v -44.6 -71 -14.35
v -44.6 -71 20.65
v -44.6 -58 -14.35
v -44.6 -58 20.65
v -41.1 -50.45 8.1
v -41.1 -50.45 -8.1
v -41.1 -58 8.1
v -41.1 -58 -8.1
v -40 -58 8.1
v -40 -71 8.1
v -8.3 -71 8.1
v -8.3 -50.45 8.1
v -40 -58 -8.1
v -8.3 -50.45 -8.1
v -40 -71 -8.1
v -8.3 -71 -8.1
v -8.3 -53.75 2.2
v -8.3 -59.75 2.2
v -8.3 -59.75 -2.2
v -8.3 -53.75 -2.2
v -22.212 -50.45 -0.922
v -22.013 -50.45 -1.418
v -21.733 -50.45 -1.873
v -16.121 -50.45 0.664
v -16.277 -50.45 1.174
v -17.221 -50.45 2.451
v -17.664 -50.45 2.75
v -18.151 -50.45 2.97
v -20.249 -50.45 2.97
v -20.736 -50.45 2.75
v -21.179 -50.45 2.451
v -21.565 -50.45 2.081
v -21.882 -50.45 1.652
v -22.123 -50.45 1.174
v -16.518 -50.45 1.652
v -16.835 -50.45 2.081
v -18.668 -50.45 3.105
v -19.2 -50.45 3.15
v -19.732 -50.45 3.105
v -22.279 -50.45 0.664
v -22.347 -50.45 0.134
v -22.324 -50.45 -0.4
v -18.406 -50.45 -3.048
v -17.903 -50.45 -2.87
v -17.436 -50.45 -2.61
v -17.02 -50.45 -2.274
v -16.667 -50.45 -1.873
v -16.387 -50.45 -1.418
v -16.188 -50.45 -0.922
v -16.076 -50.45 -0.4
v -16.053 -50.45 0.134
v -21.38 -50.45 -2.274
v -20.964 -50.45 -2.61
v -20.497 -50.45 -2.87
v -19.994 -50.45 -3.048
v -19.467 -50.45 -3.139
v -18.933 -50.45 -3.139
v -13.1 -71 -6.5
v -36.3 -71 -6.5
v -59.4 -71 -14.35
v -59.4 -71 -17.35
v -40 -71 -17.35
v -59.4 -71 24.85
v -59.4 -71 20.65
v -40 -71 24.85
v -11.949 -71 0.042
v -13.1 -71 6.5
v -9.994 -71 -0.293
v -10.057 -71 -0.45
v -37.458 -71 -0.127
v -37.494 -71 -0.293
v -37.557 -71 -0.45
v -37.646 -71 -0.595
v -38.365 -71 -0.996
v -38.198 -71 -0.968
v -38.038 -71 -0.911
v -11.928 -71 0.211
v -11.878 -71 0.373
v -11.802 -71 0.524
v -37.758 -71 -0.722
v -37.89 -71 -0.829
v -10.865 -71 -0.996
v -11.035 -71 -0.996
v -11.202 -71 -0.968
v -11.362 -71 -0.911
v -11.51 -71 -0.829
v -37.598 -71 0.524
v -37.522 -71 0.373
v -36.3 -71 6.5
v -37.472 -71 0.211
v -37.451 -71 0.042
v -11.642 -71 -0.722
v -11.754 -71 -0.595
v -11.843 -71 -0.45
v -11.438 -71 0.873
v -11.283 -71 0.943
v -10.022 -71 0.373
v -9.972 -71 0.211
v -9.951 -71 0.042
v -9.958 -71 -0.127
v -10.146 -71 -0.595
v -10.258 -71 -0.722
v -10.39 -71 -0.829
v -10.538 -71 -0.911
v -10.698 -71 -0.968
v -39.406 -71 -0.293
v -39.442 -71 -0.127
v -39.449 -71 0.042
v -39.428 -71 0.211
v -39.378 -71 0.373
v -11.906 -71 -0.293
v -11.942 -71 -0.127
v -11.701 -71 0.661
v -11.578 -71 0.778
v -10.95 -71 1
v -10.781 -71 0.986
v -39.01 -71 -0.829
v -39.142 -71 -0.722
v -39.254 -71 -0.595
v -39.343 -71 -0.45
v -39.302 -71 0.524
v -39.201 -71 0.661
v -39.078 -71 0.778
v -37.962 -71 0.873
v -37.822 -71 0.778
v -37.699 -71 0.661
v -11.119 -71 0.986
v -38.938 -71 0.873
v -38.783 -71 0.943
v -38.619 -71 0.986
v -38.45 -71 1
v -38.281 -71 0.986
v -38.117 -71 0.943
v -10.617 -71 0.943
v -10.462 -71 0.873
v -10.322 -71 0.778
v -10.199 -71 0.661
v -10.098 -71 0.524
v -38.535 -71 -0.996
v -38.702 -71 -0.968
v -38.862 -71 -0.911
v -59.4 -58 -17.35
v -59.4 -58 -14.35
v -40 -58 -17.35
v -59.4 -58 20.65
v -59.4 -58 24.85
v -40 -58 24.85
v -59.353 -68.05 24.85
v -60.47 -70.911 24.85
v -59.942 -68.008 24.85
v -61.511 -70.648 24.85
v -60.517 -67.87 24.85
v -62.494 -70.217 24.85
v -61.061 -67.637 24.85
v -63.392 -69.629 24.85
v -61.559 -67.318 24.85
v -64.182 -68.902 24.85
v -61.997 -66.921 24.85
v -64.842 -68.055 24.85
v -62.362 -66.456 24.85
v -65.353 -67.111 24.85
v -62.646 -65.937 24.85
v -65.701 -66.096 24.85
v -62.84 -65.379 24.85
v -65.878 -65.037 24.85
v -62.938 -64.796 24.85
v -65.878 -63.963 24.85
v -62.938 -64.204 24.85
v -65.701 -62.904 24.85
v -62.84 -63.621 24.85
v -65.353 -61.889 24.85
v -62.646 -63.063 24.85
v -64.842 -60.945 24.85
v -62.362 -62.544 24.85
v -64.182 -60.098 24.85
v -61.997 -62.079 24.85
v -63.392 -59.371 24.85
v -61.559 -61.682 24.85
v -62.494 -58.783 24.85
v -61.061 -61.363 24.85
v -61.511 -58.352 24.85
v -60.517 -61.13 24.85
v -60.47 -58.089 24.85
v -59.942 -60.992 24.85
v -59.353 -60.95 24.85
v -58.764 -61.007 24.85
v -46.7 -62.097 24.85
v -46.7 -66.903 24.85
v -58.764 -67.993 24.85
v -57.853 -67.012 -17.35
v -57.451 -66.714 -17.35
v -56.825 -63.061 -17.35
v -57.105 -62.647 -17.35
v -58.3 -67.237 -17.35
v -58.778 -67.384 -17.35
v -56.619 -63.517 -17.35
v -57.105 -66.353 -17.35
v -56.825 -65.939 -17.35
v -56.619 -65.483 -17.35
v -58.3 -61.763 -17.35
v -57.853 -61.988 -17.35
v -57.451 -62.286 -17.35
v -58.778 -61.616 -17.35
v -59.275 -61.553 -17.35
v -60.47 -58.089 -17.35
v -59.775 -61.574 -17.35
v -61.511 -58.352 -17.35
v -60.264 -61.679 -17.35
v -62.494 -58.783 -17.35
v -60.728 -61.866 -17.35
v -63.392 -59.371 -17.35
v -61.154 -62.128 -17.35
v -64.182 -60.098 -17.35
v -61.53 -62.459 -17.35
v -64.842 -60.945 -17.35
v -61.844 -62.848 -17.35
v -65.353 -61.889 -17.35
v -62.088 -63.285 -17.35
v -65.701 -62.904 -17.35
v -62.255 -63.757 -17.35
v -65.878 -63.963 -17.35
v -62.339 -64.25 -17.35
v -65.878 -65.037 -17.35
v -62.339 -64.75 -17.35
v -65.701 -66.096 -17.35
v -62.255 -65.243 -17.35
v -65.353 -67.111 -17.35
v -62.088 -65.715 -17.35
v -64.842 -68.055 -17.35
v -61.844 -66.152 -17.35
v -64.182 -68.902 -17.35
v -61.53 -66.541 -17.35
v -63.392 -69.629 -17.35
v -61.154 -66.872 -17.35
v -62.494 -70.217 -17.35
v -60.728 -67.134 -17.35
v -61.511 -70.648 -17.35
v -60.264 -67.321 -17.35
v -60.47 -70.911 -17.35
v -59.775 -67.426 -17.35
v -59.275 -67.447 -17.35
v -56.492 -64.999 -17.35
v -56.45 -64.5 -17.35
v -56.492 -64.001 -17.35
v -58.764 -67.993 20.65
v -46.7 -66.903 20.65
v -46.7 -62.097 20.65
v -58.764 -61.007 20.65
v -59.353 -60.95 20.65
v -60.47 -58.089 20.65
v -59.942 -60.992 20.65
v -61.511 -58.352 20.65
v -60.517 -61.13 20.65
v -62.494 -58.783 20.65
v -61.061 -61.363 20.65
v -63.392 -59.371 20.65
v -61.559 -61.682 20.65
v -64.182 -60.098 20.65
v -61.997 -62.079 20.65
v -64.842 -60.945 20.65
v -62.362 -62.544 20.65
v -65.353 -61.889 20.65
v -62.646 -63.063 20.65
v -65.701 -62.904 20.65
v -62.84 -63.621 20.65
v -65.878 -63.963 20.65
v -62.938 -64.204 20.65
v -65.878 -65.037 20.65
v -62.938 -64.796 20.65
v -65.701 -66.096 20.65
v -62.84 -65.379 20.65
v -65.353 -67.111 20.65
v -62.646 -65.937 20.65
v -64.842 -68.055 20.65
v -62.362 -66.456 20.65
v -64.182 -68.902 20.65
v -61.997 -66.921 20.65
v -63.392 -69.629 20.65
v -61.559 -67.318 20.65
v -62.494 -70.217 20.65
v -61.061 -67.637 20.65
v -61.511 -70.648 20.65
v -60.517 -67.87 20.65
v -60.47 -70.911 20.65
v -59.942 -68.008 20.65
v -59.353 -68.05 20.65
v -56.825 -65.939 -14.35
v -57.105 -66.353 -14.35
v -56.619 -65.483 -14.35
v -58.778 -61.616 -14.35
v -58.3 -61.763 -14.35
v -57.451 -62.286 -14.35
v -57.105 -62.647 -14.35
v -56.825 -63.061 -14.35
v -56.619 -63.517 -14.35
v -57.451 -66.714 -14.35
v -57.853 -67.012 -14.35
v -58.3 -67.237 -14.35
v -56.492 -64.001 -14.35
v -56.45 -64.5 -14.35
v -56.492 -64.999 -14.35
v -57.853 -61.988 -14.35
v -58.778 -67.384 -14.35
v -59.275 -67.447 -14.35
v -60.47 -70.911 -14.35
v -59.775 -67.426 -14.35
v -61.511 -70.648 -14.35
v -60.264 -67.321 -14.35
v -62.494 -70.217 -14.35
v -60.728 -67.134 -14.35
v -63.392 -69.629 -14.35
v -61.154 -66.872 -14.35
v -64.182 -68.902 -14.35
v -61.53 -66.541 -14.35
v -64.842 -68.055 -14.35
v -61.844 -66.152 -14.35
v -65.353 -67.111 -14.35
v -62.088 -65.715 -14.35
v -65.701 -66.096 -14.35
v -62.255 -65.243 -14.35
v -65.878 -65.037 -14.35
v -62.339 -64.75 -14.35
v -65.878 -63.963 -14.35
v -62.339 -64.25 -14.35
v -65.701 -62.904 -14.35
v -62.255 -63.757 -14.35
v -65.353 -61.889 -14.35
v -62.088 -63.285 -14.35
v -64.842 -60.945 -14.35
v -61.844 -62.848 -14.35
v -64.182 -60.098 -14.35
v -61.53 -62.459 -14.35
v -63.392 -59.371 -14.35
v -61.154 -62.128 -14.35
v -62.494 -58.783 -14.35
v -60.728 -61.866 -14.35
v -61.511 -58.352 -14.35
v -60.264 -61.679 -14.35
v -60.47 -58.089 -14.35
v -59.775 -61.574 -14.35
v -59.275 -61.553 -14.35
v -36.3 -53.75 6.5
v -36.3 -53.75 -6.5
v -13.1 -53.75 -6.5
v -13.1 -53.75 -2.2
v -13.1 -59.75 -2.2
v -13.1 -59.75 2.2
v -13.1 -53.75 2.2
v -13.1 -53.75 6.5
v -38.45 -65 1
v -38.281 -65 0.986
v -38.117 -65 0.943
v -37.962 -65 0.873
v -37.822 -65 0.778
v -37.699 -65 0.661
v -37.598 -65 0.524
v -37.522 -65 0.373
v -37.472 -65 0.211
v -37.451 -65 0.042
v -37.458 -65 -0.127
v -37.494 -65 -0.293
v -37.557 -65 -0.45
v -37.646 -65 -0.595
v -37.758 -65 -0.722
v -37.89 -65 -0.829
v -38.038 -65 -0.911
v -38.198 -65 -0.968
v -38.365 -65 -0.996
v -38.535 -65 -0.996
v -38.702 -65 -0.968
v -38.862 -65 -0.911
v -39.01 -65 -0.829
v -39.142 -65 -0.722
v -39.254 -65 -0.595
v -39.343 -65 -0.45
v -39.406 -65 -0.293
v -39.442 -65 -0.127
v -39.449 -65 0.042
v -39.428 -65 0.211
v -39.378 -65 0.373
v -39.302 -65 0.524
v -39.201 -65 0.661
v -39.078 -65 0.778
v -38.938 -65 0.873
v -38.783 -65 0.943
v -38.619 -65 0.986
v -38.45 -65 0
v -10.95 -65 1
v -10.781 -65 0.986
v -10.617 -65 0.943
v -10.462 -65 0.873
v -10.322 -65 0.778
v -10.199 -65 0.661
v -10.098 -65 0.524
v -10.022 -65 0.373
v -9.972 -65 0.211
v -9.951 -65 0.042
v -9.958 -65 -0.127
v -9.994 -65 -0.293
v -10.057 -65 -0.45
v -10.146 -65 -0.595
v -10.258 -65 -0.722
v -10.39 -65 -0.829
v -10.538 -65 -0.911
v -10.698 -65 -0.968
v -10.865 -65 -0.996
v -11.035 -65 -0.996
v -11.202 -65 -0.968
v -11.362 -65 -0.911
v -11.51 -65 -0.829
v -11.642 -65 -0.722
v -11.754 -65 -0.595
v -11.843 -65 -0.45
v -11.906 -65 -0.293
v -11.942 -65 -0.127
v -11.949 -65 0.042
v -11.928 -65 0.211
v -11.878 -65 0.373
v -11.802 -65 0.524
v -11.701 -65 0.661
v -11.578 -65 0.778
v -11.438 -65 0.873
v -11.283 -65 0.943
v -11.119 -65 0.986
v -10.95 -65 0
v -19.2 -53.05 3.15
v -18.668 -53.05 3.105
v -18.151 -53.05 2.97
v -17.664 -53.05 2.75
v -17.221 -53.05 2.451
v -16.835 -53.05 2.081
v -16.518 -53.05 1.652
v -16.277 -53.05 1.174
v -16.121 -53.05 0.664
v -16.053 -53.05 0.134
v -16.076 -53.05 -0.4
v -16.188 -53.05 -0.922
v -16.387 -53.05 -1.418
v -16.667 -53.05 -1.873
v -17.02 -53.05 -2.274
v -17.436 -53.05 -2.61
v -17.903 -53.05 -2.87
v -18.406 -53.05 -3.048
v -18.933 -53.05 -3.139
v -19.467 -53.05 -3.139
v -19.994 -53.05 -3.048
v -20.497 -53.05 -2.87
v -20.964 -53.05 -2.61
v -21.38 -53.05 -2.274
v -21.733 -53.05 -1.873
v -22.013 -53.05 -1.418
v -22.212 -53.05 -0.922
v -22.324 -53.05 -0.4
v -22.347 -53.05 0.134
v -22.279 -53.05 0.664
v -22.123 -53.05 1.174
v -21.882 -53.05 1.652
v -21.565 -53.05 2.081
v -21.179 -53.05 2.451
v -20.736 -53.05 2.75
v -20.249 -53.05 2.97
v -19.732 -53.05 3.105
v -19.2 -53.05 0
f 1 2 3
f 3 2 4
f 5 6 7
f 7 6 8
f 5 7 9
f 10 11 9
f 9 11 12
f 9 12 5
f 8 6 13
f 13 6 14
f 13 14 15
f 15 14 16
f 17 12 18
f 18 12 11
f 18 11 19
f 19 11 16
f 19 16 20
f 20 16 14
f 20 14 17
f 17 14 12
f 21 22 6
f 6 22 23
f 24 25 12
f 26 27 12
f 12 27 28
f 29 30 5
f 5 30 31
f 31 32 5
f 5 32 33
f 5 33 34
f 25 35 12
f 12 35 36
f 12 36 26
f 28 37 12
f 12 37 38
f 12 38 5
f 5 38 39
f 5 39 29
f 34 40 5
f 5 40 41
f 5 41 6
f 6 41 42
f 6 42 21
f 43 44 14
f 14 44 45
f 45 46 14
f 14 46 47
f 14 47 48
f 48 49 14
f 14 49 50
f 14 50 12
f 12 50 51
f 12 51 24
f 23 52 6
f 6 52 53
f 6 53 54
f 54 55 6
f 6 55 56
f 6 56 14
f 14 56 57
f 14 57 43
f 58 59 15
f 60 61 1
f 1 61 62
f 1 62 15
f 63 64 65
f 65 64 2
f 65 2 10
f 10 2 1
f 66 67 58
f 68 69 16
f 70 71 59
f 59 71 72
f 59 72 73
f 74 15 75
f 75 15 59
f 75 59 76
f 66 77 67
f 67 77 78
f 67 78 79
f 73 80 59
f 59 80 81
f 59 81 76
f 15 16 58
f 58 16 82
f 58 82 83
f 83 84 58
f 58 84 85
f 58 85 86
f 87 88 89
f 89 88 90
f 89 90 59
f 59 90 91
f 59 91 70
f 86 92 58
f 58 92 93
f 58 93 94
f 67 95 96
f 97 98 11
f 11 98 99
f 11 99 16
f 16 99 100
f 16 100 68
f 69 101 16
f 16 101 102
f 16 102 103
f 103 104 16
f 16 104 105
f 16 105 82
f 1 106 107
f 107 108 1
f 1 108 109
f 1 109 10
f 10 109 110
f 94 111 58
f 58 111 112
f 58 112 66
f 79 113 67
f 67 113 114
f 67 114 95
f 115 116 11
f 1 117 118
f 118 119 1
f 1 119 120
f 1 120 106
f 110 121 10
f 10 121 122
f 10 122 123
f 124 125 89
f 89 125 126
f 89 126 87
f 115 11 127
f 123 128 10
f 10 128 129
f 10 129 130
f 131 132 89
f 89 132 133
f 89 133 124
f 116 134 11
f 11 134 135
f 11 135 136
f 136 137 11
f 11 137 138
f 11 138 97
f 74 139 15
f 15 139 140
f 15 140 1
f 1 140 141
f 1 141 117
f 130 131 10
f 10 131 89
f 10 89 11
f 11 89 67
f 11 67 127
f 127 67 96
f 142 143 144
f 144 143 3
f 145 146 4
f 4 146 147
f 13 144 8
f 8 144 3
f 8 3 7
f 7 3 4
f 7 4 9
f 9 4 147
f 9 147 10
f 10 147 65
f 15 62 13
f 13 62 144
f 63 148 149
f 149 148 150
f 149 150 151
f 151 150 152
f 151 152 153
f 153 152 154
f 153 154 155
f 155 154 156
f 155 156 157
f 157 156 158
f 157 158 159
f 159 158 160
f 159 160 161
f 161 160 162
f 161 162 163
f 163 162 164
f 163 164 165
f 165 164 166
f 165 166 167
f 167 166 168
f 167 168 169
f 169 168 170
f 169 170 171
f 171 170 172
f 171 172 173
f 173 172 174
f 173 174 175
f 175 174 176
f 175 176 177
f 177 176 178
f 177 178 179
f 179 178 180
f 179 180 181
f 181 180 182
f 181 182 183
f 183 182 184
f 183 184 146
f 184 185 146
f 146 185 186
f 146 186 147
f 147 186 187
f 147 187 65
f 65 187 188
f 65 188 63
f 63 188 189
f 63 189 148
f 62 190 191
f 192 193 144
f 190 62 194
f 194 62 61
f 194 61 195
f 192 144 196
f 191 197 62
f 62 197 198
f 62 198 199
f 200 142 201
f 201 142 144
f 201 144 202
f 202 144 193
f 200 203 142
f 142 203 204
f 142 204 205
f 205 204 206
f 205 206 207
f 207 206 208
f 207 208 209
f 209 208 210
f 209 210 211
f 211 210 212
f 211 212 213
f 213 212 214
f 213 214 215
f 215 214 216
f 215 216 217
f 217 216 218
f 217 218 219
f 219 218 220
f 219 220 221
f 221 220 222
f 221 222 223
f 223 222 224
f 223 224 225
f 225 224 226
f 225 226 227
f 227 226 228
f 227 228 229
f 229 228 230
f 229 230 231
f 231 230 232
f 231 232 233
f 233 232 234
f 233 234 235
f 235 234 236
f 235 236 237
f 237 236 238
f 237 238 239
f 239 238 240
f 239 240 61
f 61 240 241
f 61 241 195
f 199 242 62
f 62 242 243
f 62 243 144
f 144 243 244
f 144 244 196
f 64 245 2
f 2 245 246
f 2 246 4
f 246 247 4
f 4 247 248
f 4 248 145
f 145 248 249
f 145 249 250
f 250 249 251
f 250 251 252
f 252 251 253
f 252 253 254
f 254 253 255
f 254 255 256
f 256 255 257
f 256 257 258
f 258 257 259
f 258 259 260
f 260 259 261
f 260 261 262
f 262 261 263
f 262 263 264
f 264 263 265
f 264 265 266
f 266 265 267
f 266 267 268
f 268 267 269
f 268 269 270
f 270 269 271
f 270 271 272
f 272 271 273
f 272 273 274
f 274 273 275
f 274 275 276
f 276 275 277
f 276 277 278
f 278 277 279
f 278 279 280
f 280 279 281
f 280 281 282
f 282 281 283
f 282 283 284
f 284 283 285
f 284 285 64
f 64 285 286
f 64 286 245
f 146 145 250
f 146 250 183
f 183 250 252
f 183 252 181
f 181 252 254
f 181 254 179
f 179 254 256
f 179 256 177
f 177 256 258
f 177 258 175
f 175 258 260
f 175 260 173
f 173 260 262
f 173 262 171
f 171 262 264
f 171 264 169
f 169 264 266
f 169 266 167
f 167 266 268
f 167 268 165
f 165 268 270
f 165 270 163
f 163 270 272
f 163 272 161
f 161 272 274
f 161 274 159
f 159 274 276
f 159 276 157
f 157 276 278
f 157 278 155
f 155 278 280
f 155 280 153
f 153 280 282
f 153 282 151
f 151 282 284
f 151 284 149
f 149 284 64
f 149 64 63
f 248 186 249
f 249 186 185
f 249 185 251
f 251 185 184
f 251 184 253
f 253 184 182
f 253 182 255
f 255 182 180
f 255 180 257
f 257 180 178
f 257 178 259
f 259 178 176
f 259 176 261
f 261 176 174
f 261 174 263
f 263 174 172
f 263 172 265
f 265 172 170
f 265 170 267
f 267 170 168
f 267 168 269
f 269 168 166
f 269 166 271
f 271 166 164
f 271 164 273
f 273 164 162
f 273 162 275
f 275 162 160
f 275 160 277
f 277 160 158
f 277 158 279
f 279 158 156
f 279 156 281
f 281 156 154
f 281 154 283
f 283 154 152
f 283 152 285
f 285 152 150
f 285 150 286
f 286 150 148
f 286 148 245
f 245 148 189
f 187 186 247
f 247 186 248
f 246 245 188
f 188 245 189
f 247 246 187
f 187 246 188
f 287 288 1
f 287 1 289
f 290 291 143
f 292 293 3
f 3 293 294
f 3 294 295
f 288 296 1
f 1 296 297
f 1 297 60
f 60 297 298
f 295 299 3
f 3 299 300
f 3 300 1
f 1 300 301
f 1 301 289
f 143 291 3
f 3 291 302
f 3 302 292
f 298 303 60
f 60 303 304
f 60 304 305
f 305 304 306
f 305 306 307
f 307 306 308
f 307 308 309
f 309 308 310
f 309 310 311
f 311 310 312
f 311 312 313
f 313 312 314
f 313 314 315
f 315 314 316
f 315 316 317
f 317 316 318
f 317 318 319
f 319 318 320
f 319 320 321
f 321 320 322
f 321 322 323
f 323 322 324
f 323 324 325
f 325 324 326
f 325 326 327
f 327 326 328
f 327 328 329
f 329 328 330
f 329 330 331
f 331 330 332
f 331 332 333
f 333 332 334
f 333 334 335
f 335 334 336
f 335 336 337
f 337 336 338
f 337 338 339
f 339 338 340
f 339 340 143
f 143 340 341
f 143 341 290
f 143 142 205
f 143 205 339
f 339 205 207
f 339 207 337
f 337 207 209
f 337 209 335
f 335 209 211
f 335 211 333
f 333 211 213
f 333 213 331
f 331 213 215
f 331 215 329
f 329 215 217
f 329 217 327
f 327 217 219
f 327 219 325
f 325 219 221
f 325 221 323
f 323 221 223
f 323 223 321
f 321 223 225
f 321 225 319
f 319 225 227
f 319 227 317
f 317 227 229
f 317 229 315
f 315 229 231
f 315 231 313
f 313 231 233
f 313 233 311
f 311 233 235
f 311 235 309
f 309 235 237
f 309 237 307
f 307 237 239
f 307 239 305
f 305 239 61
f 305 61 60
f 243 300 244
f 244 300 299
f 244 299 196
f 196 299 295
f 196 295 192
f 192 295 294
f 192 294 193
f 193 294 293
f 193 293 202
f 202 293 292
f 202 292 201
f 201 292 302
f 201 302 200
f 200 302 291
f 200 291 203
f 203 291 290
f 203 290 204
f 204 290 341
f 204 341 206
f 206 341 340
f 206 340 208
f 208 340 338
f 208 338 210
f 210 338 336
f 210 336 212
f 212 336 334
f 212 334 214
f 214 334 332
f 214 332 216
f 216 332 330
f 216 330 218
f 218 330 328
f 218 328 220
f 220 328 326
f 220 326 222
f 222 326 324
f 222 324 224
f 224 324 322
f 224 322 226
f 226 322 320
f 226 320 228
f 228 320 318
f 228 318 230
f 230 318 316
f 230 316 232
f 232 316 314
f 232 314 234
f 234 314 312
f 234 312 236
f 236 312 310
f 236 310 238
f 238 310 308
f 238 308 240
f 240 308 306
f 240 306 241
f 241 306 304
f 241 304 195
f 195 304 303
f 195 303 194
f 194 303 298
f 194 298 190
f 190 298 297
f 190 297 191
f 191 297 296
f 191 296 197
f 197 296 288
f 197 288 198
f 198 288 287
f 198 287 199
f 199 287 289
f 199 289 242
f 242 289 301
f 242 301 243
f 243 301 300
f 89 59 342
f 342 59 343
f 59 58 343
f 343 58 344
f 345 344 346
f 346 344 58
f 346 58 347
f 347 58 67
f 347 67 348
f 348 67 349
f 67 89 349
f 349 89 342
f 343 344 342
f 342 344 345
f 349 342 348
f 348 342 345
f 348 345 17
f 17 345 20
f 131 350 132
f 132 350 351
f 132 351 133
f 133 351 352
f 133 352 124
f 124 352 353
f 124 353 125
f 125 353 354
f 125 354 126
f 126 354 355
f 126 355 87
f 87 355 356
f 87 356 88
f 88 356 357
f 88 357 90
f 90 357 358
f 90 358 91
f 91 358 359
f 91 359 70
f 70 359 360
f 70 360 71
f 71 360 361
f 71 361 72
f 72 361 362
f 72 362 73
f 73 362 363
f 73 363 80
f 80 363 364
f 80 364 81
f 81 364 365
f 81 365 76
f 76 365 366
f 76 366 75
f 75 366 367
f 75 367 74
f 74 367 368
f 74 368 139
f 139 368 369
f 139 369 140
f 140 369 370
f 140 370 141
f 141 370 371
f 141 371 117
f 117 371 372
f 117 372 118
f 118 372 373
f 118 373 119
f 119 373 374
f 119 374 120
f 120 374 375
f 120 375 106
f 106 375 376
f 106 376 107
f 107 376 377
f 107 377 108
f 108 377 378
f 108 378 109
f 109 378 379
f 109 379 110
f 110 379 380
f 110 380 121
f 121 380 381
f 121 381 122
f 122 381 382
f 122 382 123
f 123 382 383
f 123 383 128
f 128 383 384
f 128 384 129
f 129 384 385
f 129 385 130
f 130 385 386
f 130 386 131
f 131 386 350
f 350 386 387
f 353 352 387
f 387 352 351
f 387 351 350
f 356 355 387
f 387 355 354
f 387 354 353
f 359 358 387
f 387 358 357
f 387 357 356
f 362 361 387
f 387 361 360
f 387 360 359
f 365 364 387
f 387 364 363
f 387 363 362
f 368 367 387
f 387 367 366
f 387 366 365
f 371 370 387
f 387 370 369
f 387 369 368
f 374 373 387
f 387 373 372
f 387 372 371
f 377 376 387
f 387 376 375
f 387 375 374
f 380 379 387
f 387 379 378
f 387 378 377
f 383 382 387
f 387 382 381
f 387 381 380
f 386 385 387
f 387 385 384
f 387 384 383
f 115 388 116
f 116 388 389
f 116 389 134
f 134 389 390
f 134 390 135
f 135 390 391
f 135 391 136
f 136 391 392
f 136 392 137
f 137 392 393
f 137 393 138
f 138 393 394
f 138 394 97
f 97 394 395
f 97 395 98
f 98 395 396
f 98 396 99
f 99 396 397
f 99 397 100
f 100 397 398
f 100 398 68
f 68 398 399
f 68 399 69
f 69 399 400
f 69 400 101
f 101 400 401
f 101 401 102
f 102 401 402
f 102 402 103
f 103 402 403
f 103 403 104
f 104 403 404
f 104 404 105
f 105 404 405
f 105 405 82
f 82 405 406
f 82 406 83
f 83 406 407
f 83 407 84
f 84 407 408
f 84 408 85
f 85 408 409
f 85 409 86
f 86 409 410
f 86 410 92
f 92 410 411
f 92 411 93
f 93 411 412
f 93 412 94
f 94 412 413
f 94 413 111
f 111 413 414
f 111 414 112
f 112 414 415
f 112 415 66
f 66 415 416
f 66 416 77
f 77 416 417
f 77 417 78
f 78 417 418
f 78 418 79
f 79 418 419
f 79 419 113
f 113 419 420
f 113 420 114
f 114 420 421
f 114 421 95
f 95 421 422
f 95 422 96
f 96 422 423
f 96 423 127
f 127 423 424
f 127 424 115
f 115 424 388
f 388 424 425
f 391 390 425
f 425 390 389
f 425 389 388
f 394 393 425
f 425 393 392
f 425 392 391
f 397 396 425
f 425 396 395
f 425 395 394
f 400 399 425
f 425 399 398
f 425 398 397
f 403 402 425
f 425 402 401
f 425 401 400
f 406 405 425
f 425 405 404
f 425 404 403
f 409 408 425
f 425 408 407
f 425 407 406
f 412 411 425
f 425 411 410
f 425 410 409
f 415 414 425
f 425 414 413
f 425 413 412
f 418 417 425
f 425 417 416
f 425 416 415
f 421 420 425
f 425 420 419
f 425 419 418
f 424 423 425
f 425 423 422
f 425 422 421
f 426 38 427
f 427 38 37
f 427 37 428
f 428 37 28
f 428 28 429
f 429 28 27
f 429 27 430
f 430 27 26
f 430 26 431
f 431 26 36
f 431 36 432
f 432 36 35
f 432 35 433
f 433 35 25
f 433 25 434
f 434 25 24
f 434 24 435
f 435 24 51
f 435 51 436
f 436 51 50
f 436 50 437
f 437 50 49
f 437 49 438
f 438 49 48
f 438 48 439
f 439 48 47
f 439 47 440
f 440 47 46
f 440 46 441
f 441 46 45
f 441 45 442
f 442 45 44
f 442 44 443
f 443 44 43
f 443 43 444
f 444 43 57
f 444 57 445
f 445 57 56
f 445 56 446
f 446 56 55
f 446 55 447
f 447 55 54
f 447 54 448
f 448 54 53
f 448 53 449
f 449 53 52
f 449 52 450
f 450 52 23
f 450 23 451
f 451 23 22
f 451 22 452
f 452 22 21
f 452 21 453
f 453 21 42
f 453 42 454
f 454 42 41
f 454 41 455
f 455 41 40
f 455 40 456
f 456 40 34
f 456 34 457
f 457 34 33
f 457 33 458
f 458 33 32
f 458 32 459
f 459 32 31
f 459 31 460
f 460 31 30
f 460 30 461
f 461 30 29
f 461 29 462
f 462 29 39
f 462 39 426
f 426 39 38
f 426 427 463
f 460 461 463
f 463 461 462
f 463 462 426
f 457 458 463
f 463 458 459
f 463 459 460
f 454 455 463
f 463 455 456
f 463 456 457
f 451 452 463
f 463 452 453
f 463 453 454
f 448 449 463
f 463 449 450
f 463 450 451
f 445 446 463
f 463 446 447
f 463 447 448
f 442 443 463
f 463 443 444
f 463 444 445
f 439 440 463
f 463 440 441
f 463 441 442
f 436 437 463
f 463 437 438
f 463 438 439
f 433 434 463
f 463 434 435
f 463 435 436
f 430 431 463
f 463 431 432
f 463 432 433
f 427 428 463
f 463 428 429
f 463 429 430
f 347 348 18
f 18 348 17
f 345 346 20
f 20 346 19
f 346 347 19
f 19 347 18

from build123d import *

# Parameters (mm, degrees)
BOSS_EXTRUDE1_START = -60.725
SKETCH1_W           = 32.8
SKETCH1_H           = 16.2
BOSS_EXTRUDE1_DEPTH = 10.275
BOSS_EXTRUDE2_START = -42.3
SKETCH2_W           = 42.2
SKETCH2_H           = 13
BOSS_EXTRUDE2_DEPTH = 2.3
BOSS_EXTRUDE3_START = 22.75
SKETCH3_R           = 6.5
BOSS_EXTRUDE3_DEPTH = 2.1
BOSS_EXTRUDE4_START = 22.75
SKETCH4_W           = 18.3
SKETCH4_H           = 13
BOSS_EXTRUDE4_DEPTH = 2.1
CUT_EXTRUDE1_START  = 22.75
SKETCH5_R           = 3.55
CUT_EXTRUDE1_DEPTH  = 2.1
CUT_EXTRUDE2_START  = 22.75
CUT_EXTRUDE2_DEPTH  = 2.1
BOSS_EXTRUDE5_START = -15.85
SKETCH7_R           = 6.5
BOSS_EXTRUDE5_DEPTH = 1.5
BOSS_EXTRUDE6_START = -15.85
SKETCH8_W           = 18.3
SKETCH8_H           = 13
BOSS_EXTRUDE6_DEPTH = 1.5
CUT_EXTRUDE3_START  = -15.85
SKETCH9_R           = 2.95
CUT_EXTRUDE3_DEPTH  = 1.5
CUT_EXTRUDE4_START  = -62.375
SKETCH10_W          = 23.2
SKETCH10_H          = 13
CUT_EXTRUDE4_DEPTH  = 8.625
CUT_EXTRUDE5_START  = -68
SKETCH11_R          = 1
CUT_EXTRUDE5_DEPTH  = 3
CUT_EXTRUDE6_START  = -68
SKETCH12_R          = 1
CUT_EXTRUDE6_DEPTH  = 3
CUT_EXTRUDE7_START  = -51.75
SKETCH13_R          = 3.15
CUT_EXTRUDE7_DEPTH  = 1.3
CUT_EXTRUDE8_START  = -10.7
SKETCH14_W          = 4.4
SKETCH14_H          = 6
CUT_EXTRUDE8_DEPTH  = 2.4


with BuildPart() as part:
    # Sketch1 → Boss-Extrude1 (new, symmetric)
    with BuildSketch(Plane(origin=(0, 0, 0), x_dir=(1, 0, 0), z_dir=(0, 1, 0)).offset(BOSS_EXTRUDE1_START)):
        with Locations((-24.7, 0)):
            Rectangle(SKETCH1_W, SKETCH1_H)
    extrude(amount=BOSS_EXTRUDE1_DEPTH, both=True)

    # Sketch2 → Boss-Extrude2 (add, symmetric)
    with BuildSketch(Plane(origin=(0, 0, 0), x_dir=(0, 0, -1), z_dir=(1, 0, 0)).offset(BOSS_EXTRUDE2_START)):
        with Locations((-3.75, -64.5)):
            Rectangle(SKETCH2_W, SKETCH2_H)
    extrude(amount=BOSS_EXTRUDE2_DEPTH, both=True)



with BuildPart() as body_2:
    # Sketch3 → Boss-Extrude3 (new, symmetric)
    with BuildSketch(Plane.XY.offset(BOSS_EXTRUDE3_START)):
        with Locations((-59.4, -64.5)):
            Circle(SKETCH3_R)
    extrude(amount=BOSS_EXTRUDE3_DEPTH, both=True)


with BuildPart() as part_1:
    add(part.part)

    add(body_2.part)  # Boss-Extrude4 merges body 2
    # Sketch4 → Boss-Extrude4 (add, symmetric)
    with BuildSketch(Plane.XY.offset(BOSS_EXTRUDE4_START)):
        with Locations((-50.25, -64.5)):
            Rectangle(SKETCH4_W, SKETCH4_H)
    extrude(amount=BOSS_EXTRUDE4_DEPTH, both=True)

    # Sketch5 → Cut-Extrude1 (cut, symmetric)
    with BuildSketch(Plane.XY.offset(CUT_EXTRUDE1_START)):
        with Locations((-59.4, -64.5)):
            Circle(SKETCH5_R)
    extrude(amount=CUT_EXTRUDE1_DEPTH, both=True, mode=Mode.SUBTRACT)

    # Sketch6 → Cut-Extrude2 (cut, symmetric)
    with BuildSketch(Plane.XY.offset(CUT_EXTRUDE2_START)):
        Polygon((-59.4, -60.95), (-46.7, -62.096718595), (-46.7, -66.903281405), (-59.4, -68.05), align=None)
    extrude(amount=CUT_EXTRUDE2_DEPTH, both=True, mode=Mode.SUBTRACT)



with BuildPart() as body_2_2:
    # Sketch7 → Boss-Extrude5 (new, symmetric)
    with BuildSketch(Plane.XY.offset(BOSS_EXTRUDE5_START)):
        with Locations((-59.4, -64.5)):
            Circle(SKETCH7_R)
    extrude(amount=BOSS_EXTRUDE5_DEPTH, both=True)


with BuildPart() as part_2:
    add(part_1.part)

    add(body_2_2.part)  # Boss-Extrude6 merges body 2 2
    # Sketch8 → Boss-Extrude6 (add, symmetric)
    with BuildSketch(Plane.XY.offset(BOSS_EXTRUDE6_START)):
        with Locations((-50.25, -64.5)):
            Rectangle(SKETCH8_W, SKETCH8_H)
    extrude(amount=BOSS_EXTRUDE6_DEPTH, both=True)

    # Sketch9 → Cut-Extrude3 (cut, symmetric)
    with BuildSketch(Plane.XY.offset(CUT_EXTRUDE3_START)):
        with Locations((-59.4, -64.5)):
            Circle(SKETCH9_R)
    extrude(amount=CUT_EXTRUDE3_DEPTH, both=True, mode=Mode.SUBTRACT)

    # Sketch10 → Cut-Extrude4 (cut, symmetric)
    with BuildSketch(Plane(origin=(0, 0, 0), x_dir=(1, 0, 0), z_dir=(0, 1, 0)).offset(CUT_EXTRUDE4_START)):
        with Locations((-24.7, 0)):
            Rectangle(SKETCH10_W, SKETCH10_H)
    extrude(amount=CUT_EXTRUDE4_DEPTH, both=True, mode=Mode.SUBTRACT)

    # Sketch11 → Cut-Extrude5 (cut, symmetric)
    with BuildSketch(Plane(origin=(0, 0, 0), x_dir=(1, 0, 0), z_dir=(0, 1, 0)).offset(CUT_EXTRUDE5_START)):
        with Locations(Location((-38.45, 0, 0), (0, 0, 270))):
            Circle(SKETCH11_R)
    extrude(amount=CUT_EXTRUDE5_DEPTH, both=True, mode=Mode.SUBTRACT)

    # Sketch12 → Cut-Extrude6 (cut, symmetric)
    with BuildSketch(Plane(origin=(0, 0, 0), x_dir=(1, 0, 0), z_dir=(0, 1, 0)).offset(CUT_EXTRUDE6_START)):
        with Locations(Location((-10.95, 0, 0), (0, 0, 270))):
            Circle(SKETCH12_R)
    extrude(amount=CUT_EXTRUDE6_DEPTH, both=True, mode=Mode.SUBTRACT)

    # Sketch13 → Cut-Extrude7 (cut, symmetric)
    with BuildSketch(Plane(origin=(0, 0, 0), x_dir=(1, 0, 0), z_dir=(0, 1, 0)).offset(CUT_EXTRUDE7_START)):
        with Locations(Location((-19.2, 0, 0), (0, 0, 270))):
            Circle(SKETCH13_R)
    extrude(amount=CUT_EXTRUDE7_DEPTH, both=True, mode=Mode.SUBTRACT)

    # Sketch14 → Cut-Extrude8 (cut, symmetric)
    with BuildSketch(Plane(origin=(0, 0, 0), x_dir=(0, 0, -1), z_dir=(1, 0, 0)).offset(CUT_EXTRUDE8_START)):
        with Locations((0, -56.75)):
            Rectangle(SKETCH14_W, SKETCH14_H)
    extrude(amount=CUT_EXTRUDE8_DEPTH, both=True, mode=Mode.SUBTRACT)


solid = part_2.part
